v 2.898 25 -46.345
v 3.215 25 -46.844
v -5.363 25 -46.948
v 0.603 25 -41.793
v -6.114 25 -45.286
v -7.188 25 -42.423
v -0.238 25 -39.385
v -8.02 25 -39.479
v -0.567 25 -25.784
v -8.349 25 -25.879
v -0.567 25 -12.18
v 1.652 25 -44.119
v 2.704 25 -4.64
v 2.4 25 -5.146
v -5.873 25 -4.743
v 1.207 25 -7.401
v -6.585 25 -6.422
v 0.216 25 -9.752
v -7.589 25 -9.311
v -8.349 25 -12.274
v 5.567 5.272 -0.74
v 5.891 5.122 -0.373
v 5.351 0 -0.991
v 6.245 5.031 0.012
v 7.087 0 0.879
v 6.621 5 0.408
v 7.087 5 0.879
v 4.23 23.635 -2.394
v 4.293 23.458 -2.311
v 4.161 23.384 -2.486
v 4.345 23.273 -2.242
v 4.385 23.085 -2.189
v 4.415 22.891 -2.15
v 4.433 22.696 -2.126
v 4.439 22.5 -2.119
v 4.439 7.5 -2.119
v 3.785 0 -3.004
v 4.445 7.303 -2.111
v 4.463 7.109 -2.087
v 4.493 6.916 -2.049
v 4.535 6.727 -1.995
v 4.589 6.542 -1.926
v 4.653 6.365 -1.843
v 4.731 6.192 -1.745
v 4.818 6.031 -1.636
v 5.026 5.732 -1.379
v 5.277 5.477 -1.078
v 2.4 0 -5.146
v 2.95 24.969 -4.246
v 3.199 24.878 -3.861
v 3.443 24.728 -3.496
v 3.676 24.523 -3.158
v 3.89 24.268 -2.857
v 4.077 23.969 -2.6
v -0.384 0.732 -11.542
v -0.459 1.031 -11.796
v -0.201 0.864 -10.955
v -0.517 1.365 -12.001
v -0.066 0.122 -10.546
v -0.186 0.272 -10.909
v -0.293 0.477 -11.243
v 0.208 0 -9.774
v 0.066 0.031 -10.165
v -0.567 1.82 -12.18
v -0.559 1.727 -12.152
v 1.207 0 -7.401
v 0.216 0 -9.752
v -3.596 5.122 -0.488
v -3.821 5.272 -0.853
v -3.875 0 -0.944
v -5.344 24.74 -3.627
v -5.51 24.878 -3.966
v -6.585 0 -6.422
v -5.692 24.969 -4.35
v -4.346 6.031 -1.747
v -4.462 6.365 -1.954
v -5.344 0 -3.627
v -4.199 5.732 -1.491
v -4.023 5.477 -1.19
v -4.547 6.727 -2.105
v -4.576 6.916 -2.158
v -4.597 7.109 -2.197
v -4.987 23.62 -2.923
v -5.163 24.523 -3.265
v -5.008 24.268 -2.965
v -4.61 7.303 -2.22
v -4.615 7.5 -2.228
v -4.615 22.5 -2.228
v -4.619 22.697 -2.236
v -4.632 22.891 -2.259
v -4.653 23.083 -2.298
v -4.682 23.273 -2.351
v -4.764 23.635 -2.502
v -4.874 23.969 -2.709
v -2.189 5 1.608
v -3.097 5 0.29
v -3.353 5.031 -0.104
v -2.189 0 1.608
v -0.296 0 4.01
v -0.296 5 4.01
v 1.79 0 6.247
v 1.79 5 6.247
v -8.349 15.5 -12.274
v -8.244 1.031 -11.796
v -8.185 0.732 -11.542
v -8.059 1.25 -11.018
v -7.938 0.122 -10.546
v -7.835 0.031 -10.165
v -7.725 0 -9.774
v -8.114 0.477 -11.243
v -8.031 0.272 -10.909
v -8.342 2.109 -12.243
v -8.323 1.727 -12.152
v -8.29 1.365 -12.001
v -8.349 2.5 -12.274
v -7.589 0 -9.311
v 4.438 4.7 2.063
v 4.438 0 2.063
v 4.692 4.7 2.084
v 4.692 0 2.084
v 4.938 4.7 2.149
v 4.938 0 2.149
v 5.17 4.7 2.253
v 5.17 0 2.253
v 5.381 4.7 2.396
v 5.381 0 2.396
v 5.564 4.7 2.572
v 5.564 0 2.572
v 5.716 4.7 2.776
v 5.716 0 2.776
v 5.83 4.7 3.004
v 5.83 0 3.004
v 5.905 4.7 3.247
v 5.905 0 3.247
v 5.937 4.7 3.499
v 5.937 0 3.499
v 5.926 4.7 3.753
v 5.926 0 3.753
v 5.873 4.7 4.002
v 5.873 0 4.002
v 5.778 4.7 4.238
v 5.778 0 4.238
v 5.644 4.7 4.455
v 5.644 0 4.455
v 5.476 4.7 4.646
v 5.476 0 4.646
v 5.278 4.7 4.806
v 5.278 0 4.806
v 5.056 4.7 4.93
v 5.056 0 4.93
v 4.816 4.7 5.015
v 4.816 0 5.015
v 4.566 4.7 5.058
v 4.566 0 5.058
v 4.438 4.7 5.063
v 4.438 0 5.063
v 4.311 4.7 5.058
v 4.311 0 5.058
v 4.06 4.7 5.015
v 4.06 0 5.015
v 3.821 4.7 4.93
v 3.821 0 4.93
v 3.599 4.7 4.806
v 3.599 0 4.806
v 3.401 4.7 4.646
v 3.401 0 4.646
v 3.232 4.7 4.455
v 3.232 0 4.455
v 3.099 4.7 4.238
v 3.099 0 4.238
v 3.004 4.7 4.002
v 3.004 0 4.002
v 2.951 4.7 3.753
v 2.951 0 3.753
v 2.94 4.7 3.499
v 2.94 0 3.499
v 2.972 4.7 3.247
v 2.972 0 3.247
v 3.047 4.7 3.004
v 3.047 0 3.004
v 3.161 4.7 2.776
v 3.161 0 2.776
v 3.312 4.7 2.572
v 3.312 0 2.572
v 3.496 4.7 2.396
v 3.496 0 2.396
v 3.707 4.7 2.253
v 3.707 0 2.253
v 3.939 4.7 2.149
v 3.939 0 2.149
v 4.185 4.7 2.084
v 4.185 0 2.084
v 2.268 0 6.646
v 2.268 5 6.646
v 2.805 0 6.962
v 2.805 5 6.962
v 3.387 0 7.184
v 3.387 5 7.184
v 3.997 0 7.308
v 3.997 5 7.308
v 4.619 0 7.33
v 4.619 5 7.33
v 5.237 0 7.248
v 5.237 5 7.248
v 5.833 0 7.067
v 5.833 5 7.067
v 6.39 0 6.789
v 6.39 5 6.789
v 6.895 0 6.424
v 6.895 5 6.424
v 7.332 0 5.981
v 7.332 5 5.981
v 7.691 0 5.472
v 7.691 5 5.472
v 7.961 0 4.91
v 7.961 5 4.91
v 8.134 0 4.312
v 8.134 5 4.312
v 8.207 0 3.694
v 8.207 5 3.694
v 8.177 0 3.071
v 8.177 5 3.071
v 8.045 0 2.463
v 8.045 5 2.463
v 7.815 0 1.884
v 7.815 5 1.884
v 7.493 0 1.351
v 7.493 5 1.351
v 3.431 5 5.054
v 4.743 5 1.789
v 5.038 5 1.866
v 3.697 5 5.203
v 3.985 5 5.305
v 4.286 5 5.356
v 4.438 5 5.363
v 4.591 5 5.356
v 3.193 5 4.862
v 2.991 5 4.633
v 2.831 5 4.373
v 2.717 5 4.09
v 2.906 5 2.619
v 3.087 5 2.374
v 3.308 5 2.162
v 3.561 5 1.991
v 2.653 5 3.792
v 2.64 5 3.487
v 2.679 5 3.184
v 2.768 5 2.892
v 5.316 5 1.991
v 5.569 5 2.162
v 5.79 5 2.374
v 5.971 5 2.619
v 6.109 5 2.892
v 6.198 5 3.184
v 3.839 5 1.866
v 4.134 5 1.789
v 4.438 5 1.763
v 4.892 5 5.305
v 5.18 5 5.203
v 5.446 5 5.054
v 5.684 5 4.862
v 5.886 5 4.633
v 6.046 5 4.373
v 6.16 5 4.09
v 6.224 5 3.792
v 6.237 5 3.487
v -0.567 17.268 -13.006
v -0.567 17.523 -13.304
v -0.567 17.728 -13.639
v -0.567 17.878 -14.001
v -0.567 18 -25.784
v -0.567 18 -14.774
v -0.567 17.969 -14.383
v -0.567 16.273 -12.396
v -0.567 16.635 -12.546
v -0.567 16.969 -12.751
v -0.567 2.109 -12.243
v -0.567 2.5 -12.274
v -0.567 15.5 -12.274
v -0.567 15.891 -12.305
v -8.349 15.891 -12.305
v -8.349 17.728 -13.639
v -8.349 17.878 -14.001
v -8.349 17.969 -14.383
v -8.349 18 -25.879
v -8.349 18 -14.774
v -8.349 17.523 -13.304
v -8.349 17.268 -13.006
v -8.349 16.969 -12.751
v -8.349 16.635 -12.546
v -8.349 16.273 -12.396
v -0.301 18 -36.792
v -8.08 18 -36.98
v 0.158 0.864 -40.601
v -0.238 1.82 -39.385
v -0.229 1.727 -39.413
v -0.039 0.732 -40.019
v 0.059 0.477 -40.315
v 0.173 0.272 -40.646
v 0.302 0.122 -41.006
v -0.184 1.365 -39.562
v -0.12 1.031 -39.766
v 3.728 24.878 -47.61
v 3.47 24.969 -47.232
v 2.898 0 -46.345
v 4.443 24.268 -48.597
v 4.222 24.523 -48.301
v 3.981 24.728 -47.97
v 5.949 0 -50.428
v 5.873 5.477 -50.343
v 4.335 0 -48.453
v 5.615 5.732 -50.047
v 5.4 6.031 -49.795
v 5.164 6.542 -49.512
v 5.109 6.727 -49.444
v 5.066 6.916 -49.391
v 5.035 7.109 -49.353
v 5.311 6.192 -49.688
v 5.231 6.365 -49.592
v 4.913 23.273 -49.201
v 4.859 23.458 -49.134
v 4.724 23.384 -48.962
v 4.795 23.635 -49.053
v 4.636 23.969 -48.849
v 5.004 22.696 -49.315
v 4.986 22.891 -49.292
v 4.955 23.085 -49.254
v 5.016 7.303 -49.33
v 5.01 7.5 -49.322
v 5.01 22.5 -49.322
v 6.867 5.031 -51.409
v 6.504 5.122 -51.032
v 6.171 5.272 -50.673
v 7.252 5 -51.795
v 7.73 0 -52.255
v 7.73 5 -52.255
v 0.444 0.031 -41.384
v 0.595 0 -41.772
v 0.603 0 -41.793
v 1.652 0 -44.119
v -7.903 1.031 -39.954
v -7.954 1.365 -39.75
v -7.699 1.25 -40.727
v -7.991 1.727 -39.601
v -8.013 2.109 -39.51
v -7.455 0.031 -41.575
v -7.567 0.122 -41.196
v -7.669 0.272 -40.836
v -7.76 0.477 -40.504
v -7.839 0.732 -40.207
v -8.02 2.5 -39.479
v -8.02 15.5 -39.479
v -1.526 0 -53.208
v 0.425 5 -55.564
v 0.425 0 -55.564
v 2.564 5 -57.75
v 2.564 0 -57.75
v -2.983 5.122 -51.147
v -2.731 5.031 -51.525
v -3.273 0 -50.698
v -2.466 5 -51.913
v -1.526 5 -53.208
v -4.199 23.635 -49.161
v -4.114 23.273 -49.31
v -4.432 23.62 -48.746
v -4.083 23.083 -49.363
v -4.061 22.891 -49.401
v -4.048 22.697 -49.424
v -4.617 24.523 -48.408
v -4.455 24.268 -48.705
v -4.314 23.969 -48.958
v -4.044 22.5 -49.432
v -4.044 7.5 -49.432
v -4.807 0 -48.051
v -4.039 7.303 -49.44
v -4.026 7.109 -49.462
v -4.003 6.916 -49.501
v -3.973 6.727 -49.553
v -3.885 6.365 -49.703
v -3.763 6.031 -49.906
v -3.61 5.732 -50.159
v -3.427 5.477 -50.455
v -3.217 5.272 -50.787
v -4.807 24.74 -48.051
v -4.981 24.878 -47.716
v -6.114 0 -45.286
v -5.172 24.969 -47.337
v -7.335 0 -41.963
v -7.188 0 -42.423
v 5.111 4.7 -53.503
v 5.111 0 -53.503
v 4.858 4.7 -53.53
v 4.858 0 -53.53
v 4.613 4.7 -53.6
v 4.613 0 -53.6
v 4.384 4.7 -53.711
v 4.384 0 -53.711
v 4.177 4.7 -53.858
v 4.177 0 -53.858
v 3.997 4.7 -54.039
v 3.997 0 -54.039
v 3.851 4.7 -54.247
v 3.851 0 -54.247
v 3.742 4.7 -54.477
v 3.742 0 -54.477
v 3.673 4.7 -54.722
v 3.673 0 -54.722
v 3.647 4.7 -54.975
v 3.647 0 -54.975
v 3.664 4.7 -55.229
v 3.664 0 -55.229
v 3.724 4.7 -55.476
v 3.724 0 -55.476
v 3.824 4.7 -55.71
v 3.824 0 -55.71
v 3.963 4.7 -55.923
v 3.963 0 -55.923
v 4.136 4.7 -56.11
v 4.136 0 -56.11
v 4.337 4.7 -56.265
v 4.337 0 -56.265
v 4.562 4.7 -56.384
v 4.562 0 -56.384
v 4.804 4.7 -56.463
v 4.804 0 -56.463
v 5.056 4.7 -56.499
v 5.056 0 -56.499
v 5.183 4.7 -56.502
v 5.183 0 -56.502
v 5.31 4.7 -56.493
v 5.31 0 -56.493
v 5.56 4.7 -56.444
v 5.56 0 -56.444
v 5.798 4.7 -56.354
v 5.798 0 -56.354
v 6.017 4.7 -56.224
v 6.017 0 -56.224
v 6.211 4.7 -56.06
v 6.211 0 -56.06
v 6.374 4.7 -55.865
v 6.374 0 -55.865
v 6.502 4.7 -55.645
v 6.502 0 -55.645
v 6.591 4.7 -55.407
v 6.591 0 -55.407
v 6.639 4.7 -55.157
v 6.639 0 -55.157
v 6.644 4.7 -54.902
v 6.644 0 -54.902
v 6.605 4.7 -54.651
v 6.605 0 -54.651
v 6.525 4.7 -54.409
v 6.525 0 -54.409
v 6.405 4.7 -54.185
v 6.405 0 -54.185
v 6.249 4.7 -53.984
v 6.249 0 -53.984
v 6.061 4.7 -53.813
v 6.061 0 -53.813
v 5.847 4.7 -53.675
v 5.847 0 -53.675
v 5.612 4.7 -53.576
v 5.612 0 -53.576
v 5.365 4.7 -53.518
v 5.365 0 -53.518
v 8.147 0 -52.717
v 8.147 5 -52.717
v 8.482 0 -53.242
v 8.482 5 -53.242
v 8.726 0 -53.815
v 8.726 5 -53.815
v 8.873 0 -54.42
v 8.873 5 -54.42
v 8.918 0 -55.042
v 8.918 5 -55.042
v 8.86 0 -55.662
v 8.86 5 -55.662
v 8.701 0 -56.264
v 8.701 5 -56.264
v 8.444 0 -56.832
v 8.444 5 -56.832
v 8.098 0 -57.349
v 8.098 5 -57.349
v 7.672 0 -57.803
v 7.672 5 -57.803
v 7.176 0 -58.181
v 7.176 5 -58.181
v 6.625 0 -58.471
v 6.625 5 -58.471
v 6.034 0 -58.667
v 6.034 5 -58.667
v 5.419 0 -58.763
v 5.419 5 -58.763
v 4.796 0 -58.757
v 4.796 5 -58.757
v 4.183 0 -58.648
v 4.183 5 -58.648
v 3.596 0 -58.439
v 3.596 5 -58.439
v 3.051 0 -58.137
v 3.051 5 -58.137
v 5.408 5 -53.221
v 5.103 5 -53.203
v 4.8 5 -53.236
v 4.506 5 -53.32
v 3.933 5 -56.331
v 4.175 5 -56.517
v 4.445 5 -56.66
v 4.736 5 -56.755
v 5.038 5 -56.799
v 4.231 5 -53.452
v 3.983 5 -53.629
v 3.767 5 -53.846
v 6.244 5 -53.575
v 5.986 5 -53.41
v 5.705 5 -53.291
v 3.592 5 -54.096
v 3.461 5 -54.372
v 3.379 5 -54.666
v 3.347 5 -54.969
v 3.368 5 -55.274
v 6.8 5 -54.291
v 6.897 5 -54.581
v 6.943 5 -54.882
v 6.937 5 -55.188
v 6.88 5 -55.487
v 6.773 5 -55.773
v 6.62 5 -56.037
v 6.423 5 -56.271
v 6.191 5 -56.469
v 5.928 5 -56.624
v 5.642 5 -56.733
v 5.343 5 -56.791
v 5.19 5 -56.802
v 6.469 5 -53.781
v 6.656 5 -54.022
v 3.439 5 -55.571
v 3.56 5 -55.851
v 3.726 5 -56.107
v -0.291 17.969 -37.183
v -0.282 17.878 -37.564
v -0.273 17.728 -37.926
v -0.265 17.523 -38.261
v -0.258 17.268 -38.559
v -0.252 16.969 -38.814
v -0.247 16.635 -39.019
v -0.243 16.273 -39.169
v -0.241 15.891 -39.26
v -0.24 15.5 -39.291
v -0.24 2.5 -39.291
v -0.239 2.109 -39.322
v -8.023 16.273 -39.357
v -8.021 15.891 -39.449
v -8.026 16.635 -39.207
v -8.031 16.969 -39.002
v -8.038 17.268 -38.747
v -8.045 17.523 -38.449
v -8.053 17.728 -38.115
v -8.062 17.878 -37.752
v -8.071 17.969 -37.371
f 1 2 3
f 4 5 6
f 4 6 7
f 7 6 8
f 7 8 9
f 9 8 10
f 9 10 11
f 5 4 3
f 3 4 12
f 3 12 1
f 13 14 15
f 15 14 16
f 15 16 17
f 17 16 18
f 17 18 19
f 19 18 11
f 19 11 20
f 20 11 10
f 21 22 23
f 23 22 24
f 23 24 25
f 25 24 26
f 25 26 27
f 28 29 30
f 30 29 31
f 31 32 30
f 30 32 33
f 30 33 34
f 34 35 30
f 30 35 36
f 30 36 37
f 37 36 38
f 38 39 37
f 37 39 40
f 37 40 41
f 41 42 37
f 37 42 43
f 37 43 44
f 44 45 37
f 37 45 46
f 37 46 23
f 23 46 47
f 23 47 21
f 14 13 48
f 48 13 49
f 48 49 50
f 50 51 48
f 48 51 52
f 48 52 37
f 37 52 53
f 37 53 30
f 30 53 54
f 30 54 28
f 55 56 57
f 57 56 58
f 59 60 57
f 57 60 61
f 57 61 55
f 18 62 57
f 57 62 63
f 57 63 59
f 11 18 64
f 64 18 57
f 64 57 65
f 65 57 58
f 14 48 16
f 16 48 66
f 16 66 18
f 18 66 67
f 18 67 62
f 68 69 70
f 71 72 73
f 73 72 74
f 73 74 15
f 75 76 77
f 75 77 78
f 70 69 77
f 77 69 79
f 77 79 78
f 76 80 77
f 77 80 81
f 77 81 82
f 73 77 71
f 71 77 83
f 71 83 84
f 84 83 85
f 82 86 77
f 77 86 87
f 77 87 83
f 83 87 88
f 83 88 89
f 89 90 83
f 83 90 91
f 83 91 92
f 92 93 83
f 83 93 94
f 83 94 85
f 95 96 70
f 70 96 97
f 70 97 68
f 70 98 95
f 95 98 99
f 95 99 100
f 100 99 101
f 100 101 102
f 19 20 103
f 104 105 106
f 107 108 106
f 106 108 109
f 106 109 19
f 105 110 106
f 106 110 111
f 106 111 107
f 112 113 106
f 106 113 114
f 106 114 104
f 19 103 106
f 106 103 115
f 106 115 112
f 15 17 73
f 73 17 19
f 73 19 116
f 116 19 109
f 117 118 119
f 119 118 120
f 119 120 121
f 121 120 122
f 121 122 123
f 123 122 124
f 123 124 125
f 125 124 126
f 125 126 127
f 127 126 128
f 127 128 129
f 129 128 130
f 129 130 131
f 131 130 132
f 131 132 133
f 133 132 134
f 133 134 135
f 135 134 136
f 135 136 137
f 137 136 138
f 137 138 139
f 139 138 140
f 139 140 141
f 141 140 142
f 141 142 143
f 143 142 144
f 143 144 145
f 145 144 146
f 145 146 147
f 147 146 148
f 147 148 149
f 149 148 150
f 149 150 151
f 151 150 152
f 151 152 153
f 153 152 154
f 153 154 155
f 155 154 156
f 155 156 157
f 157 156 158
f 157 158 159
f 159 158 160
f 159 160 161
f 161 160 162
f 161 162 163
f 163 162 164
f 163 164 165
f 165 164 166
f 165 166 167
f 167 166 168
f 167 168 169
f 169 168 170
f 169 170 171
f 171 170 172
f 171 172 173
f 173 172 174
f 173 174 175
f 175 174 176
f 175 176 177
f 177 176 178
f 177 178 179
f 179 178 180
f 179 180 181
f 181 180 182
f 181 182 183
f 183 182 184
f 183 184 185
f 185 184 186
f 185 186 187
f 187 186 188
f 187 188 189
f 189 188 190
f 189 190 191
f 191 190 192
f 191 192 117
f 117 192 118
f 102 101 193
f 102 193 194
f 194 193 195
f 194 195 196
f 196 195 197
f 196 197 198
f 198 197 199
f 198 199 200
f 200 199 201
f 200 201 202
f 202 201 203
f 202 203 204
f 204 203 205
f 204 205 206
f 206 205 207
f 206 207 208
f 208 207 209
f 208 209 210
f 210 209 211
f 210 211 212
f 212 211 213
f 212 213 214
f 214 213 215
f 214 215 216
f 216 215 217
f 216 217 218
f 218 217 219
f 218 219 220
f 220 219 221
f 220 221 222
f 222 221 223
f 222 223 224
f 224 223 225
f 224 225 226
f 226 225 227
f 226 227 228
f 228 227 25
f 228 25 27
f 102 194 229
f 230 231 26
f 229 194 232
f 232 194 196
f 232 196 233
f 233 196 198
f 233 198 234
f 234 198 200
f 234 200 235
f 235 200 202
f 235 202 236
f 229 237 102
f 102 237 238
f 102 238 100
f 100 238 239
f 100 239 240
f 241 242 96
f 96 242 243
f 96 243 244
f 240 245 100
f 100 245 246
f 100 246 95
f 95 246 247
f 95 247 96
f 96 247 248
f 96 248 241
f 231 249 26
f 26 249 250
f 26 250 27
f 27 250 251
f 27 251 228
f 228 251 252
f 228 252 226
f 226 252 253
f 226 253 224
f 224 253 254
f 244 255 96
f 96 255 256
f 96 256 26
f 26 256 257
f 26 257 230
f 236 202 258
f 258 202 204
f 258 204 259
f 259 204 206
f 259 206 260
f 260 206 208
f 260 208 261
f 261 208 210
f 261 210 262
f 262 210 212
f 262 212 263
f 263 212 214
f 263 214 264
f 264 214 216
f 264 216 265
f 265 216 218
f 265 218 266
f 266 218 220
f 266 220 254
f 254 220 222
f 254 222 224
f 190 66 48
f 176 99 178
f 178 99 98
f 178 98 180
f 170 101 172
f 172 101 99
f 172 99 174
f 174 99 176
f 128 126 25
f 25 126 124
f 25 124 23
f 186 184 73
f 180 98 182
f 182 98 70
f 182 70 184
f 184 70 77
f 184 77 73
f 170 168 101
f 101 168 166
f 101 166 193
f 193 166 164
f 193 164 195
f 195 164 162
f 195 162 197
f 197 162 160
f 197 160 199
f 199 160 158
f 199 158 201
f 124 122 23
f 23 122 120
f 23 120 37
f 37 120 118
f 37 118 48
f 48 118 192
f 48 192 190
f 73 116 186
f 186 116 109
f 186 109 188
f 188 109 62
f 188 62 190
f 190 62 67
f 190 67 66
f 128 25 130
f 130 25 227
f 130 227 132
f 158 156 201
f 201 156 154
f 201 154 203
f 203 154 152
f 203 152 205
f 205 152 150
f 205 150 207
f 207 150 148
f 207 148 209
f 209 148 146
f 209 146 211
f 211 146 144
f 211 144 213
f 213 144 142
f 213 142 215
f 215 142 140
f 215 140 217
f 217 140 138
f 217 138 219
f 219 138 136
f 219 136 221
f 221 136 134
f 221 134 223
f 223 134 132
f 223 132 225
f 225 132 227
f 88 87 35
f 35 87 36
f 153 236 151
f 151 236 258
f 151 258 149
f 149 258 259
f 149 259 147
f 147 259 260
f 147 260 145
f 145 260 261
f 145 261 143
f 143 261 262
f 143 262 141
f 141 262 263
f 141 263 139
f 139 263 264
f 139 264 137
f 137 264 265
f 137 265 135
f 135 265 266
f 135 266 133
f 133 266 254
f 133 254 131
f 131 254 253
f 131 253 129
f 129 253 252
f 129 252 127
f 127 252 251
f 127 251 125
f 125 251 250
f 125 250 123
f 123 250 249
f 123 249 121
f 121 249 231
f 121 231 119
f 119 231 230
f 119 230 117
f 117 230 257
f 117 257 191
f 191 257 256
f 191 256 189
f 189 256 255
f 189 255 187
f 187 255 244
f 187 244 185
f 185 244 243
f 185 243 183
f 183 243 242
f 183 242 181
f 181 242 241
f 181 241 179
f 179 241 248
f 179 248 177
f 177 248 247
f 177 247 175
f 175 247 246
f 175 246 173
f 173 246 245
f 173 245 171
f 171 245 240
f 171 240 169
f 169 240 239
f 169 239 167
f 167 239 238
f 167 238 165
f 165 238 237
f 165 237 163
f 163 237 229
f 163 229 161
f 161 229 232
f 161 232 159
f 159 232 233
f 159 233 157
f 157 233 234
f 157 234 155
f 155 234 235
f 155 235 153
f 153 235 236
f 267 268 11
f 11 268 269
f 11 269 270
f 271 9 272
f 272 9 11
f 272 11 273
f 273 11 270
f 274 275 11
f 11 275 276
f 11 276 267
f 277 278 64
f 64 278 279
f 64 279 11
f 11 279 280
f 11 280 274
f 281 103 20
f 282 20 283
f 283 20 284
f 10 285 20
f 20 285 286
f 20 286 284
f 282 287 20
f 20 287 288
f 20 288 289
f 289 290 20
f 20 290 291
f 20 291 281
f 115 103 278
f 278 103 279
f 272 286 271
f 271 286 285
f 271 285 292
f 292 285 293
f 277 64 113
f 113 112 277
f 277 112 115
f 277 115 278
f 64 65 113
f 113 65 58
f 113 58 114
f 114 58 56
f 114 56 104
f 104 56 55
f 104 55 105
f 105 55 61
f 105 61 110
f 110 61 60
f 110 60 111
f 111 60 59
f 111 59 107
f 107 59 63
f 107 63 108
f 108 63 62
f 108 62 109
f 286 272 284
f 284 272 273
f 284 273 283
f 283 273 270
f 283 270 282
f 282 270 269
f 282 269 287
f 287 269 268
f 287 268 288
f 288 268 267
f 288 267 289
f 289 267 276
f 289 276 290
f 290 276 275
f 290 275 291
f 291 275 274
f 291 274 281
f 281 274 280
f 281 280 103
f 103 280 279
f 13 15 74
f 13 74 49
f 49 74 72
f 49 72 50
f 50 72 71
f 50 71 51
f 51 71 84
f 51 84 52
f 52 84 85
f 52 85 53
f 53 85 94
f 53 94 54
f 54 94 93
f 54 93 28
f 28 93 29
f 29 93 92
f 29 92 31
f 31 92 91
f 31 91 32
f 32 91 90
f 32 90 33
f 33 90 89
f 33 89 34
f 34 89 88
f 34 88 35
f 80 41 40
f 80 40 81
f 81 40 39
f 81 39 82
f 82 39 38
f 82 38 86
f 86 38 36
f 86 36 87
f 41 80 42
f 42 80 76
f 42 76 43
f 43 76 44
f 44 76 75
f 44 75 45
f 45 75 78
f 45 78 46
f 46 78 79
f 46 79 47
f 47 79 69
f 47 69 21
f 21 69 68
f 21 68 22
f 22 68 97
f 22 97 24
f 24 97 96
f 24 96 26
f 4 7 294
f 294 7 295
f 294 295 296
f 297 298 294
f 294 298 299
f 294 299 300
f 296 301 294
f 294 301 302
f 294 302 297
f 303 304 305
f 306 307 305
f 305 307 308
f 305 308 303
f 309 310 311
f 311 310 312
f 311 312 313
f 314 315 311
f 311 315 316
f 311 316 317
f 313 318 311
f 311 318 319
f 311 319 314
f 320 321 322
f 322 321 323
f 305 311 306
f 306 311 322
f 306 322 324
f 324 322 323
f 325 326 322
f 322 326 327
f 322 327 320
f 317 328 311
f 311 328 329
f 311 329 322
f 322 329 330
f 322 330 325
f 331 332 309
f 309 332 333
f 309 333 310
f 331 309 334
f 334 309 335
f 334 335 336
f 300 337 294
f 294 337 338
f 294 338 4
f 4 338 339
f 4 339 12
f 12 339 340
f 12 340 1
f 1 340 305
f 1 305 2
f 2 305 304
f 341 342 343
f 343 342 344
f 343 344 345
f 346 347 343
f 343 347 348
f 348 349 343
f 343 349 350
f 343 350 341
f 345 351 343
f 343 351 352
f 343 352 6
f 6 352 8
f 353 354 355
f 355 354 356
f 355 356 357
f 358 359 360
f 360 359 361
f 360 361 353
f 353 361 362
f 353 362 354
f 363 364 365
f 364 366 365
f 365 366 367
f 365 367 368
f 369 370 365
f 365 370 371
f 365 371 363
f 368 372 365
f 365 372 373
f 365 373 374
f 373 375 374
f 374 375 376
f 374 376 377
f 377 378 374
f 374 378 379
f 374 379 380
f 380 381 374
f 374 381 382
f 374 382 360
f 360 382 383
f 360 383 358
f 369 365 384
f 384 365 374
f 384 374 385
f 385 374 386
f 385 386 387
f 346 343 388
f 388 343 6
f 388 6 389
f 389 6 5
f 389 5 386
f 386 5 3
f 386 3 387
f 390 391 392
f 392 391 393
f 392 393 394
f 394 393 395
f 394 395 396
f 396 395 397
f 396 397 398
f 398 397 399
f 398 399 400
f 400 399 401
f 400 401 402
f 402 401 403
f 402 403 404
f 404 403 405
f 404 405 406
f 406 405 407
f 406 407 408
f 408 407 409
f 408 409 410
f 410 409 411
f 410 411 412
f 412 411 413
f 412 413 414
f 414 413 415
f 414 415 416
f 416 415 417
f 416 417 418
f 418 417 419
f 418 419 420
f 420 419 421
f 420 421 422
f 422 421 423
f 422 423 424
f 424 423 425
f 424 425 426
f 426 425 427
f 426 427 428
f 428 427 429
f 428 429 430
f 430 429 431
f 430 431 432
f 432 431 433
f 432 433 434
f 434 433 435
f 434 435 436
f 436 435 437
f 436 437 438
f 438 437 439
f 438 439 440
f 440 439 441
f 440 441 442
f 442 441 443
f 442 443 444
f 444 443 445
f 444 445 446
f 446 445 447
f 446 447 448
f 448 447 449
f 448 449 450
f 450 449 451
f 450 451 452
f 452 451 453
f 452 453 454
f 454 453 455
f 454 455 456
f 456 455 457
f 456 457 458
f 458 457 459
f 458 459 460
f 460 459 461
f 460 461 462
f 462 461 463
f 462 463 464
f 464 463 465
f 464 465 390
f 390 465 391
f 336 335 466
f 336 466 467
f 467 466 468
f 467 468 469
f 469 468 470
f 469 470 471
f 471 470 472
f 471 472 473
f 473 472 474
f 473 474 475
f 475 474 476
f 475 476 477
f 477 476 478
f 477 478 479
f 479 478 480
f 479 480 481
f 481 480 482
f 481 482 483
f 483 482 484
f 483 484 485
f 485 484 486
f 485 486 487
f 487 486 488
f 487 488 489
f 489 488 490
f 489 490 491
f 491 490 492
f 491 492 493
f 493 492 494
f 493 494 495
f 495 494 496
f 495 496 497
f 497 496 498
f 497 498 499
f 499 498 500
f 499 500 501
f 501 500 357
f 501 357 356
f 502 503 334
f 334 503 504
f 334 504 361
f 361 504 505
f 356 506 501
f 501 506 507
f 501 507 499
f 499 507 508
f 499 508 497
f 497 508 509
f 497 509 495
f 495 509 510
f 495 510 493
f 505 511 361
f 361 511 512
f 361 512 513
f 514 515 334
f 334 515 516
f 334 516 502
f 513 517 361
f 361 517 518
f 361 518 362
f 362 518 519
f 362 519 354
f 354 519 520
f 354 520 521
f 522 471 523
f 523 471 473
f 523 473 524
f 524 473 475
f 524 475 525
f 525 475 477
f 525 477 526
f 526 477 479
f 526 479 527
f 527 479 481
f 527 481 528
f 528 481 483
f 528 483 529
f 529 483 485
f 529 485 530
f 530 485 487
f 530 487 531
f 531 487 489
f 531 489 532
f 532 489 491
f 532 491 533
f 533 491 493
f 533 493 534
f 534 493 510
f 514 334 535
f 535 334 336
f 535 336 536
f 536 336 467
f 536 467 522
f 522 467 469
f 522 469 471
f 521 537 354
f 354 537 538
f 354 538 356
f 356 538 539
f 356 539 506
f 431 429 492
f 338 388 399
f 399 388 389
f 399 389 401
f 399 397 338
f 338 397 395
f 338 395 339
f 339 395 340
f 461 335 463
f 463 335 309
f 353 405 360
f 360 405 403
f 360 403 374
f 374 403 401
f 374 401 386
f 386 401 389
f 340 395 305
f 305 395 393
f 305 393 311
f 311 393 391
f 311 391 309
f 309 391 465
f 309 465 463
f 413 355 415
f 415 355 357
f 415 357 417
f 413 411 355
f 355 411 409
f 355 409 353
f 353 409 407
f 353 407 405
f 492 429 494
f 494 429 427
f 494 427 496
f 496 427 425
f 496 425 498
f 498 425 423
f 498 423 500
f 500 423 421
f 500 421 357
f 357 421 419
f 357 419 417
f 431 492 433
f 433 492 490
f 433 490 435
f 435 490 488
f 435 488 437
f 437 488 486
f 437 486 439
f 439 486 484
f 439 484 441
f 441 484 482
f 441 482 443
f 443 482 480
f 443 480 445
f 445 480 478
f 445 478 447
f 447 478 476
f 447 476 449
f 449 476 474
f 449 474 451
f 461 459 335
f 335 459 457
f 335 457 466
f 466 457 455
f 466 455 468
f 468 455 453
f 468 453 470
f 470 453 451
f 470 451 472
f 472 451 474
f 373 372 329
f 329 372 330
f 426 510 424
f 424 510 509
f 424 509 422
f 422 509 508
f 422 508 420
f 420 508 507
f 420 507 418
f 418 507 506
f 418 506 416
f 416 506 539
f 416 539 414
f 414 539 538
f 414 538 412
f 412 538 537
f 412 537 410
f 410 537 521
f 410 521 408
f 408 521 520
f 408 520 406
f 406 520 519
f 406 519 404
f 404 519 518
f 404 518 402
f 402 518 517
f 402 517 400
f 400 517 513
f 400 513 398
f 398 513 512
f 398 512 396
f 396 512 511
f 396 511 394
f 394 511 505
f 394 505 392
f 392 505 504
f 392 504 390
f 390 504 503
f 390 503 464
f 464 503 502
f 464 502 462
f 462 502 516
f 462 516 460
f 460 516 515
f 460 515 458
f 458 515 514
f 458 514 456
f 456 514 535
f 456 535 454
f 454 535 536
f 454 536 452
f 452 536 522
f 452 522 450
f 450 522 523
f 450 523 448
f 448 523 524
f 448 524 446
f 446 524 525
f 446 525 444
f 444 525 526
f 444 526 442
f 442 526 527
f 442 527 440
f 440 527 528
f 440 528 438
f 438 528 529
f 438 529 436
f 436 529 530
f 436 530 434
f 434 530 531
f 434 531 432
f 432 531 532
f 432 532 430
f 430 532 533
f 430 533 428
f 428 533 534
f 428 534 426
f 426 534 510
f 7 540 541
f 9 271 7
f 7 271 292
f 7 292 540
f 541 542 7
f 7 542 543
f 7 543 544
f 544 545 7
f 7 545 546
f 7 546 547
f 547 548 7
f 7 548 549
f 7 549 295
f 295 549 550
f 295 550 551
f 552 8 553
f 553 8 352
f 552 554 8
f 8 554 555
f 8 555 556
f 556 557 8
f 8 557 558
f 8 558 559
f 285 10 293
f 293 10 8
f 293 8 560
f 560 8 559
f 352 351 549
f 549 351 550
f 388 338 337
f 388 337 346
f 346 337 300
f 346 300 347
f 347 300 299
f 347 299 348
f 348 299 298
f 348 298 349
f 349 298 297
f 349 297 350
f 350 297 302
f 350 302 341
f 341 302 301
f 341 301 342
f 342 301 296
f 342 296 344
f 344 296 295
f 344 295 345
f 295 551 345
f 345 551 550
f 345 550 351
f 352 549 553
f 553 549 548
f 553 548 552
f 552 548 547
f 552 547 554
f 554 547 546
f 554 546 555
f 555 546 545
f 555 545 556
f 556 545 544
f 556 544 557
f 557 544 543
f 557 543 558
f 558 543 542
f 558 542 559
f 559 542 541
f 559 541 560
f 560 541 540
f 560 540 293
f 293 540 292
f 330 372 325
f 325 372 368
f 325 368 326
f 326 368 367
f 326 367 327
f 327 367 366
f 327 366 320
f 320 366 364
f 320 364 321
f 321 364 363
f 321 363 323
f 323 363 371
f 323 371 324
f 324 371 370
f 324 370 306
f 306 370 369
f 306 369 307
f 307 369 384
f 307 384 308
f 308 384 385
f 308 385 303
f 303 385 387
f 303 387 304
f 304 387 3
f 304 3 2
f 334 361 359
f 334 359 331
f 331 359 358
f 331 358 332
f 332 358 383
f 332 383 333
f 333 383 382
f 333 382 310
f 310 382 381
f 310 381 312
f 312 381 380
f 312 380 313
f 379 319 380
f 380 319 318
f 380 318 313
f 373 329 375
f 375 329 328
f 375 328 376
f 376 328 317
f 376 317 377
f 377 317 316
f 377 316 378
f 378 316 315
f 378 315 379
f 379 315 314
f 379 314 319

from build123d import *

# Parameters (mm, degrees)
CROQUIS2_R                                           = 1.5000000000000007
SALIENTE_EXTRUIR1_DEPTH                              = 5
SALIENTE_EXTRUIR2_DEPTH                              = 25
AVELLANADO_PARA_TORNILLO_CON_CABEZA_PLAN_D           = 1.8
AVELLANADO_PARA_TORNILLO_CON_CABEZA_PLAN_CSINK_D     = 3.6
AVELLANADO_PARA_TORNILLO_CON_CABEZA_PLAN_CSINK_ANGLE = 90
SALIENTE_EXTRUIR3_DEPTH                              = 25
CORTAR_EXTRUIR3_REACH                                = 53.752
CROQUIS13_W                                          = 29.905861654600464
CROQUIS13_H                                          = 18
CORTAR_EXTRUIR7_DEPTH                                = 57.075529812190766
CORTAR_EXTRUIR7_DEPTH_BACK                           = 16.3
CROQUIS44_W                                          = 16.299999999999983
CROQUIS44_H                                          = 7.0000000000000036
CORTAR_EXTRUIR8_DEPTH                                = 1
REDONDEO1_R                                          = 2.5


with BuildPart() as part:
    # Croquis2 → Saliente-Extruir1 (new body)
    with BuildSketch(Plane(origin=(0, 0, 0), x_dir=(1, 0, 0), z_dir=(0, 1, 0))):
        with BuildLine():
            Line((4.439129900634949, 2.118516979293595), (-4.614530320763677, 2.2280379015268346))
            ThreePointArc((-4.614530320763688, 2.2280379015268323), (-1.7200044543519404, -2.2420294069801585), (1.789858261170167, -6.247106865918674))
            ThreePointArc((1.7898582611701688, -6.247106865918663), (7.12266646558417, -6.2115073036702295), (7.087066903335739, -0.8786990992562278))
            ThreePointArc((7.087066903335739, -0.8786990992562309), (5.711774187433154, 0.574565767125705), (4.439129900634946, 2.118516979293595))
        make_face()
        with Locations((4.438462582252952, -3.5629029825874476)):
            Circle(CROQUIS2_R, mode=Mode.SUBTRACT)
    extrude(amount=SALIENTE_EXTRUIR1_DEPTH)

    # Croquis2<3> → Saliente-Extruir2 (add)
    with BuildSketch(Plane(origin=(0, 0, 0), x_dir=(1, 0, 0), z_dir=(0, 1, 0))):
        with BuildLine():
            ThreePointArc((-8.348947802254838, 12.273944296748217), (-6.849717496148568, 7.114200545347133), (-4.614530320763688, 2.2280379015268323))
            Line((-4.614530320763677, 2.2280379015268346), (4.439129900634949, 2.118516979293595))
            ThreePointArc((4.439129900634946, 2.118516979293595), (1.4480092130333588, 6.906303569503548), (-0.566904192020619, 12.179805951348676))
            Line((-0.5669041920206155, 12.179805951348678), (-8.348947802254829, 12.273944296748219))
        make_face()
    extrude(amount=SALIENTE_EXTRUIR2_DEPTH)

    # Avellanado para tornillo con cabeza plana avellanada de M1.61 (through all)
    with Locations(Plane(origin=(0, 5, 0), x_dir=(1, 0, 0), z_dir=(0, 1, 0))):
        with Locations((4.438462582, -3.562902983)):
            CounterSinkHole(AVELLANADO_PARA_TORNILLO_CON_CABEZA_PLAN_D / 2, AVELLANADO_PARA_TORNILLO_CON_CABEZA_PLAN_CSINK_D / 2, counter_sink_angle=AVELLANADO_PARA_TORNILLO_CON_CABEZA_PLAN_CSINK_ANGLE)

    # Croquis8 → Saliente-Extruir3 (add)
    with BuildSketch(Plane(origin=(0, 0, 0), x_dir=(1, 0, 0), z_dir=(0, 1, 0))):
        Polygon((-8.348947802254834, 42.17980595134868), (-0.5669041920206199, 42.085667605949155), (-0.5669041920206147, 12.179805951348678), (-8.348947802254829, 12.273944296748219), align=None)
    extrude(amount=SALIENTE_EXTRUIR3_DEPTH)

    # Croquis13 → Cortar-Extruir3 (cut, up to next)
    with BuildSketch(Plane.ZY.offset(8.348947802254827), mode=Mode.PRIVATE) as cortar_extruir3_sk1:
        with Locations((-27.22687512404845, 9)):
            Rectangle(CROQUIS13_W, CROQUIS13_H)
    cortar_extruir3_tool1 = extrude(cortar_extruir3_sk1.sketch, amount=-CORTAR_EXTRUIR3_REACH, mode=Mode.PRIVATE) & part.part
    add(cortar_extruir3_tool1.solids().sort_by_distance((-8.348948, 9, -27.226875))[0], mode=Mode.SUBTRACT)

    # Croquis42 → Cortar-Extruir7 (cut, two sides: drawn at the far end of the back side and taken through both)
    with BuildSketch(Plane(origin=(0.5089472836094107, 0, -42.072653173894544), x_dir=(-0.9999268409353232, 0, -0.012095981857829284), z_dir=(0.012095981857829284, 0, -0.9999268409353232)).offset(-CORTAR_EXTRUIR7_DEPTH_BACK)):
        Polygon((1.0759301896763651, 88.39893602181824), (1.0759301896763651, 25), (1.0759301896763651, 18), (8.85854316859686, 18), (72.2574791904151, 18), (161.42014152905733, 108.15386846652605), (90.2385925283186, 178.5528044883443), align=None)
    extrude(amount=CORTAR_EXTRUIR7_DEPTH + CORTAR_EXTRUIR7_DEPTH_BACK, mode=Mode.SUBTRACT)

    # Croquis44 → Cortar-Extruir8 (cut)
    with BuildSketch(Plane(origin=(-1.0758514756300315, 0, -0.01301443205461614), x_dir=(-0.012095981857829285, 0, 0.9999268409353232), z_dir=(-0.9999268409353232, 0, -0.012095981857829285))):
        with Locations((-33.92573139504898, 21.5)):
            Rectangle(CROQUIS44_W, CROQUIS44_H)
    extrude(amount=-CORTAR_EXTRUIR8_DEPTH, mode=Mode.SUBTRACT)

    # Redondeo1
    redondeo1_edges = [part.edges().sort_by_distance(p)[0] for p in [
        (-4.457925997137721, 0, -12.273944296748217),
        (-4.457925997137721, 18, -12.273944296748217),
        (-0.08770021006436401, 25, -2.1732774404102146),
        (-0.08770021006436401, 5, -2.1732774404102146),
    ]]
    fillet(redondeo1_edges, radius=REDONDEO1_R)

    # Simetría1: part across plane


with BuildPart() as part_1:
    add(part.part)
    add(part.part.mirror(Plane(origin=(-8.546112306537452, 25, -25.88099844410291), x_dir=(0.9999268409353231, 0, 0.012095981857829284), z_dir=(-0.012095981857829282, 0, 0.9999268409353232))))


solid = part_1.part
